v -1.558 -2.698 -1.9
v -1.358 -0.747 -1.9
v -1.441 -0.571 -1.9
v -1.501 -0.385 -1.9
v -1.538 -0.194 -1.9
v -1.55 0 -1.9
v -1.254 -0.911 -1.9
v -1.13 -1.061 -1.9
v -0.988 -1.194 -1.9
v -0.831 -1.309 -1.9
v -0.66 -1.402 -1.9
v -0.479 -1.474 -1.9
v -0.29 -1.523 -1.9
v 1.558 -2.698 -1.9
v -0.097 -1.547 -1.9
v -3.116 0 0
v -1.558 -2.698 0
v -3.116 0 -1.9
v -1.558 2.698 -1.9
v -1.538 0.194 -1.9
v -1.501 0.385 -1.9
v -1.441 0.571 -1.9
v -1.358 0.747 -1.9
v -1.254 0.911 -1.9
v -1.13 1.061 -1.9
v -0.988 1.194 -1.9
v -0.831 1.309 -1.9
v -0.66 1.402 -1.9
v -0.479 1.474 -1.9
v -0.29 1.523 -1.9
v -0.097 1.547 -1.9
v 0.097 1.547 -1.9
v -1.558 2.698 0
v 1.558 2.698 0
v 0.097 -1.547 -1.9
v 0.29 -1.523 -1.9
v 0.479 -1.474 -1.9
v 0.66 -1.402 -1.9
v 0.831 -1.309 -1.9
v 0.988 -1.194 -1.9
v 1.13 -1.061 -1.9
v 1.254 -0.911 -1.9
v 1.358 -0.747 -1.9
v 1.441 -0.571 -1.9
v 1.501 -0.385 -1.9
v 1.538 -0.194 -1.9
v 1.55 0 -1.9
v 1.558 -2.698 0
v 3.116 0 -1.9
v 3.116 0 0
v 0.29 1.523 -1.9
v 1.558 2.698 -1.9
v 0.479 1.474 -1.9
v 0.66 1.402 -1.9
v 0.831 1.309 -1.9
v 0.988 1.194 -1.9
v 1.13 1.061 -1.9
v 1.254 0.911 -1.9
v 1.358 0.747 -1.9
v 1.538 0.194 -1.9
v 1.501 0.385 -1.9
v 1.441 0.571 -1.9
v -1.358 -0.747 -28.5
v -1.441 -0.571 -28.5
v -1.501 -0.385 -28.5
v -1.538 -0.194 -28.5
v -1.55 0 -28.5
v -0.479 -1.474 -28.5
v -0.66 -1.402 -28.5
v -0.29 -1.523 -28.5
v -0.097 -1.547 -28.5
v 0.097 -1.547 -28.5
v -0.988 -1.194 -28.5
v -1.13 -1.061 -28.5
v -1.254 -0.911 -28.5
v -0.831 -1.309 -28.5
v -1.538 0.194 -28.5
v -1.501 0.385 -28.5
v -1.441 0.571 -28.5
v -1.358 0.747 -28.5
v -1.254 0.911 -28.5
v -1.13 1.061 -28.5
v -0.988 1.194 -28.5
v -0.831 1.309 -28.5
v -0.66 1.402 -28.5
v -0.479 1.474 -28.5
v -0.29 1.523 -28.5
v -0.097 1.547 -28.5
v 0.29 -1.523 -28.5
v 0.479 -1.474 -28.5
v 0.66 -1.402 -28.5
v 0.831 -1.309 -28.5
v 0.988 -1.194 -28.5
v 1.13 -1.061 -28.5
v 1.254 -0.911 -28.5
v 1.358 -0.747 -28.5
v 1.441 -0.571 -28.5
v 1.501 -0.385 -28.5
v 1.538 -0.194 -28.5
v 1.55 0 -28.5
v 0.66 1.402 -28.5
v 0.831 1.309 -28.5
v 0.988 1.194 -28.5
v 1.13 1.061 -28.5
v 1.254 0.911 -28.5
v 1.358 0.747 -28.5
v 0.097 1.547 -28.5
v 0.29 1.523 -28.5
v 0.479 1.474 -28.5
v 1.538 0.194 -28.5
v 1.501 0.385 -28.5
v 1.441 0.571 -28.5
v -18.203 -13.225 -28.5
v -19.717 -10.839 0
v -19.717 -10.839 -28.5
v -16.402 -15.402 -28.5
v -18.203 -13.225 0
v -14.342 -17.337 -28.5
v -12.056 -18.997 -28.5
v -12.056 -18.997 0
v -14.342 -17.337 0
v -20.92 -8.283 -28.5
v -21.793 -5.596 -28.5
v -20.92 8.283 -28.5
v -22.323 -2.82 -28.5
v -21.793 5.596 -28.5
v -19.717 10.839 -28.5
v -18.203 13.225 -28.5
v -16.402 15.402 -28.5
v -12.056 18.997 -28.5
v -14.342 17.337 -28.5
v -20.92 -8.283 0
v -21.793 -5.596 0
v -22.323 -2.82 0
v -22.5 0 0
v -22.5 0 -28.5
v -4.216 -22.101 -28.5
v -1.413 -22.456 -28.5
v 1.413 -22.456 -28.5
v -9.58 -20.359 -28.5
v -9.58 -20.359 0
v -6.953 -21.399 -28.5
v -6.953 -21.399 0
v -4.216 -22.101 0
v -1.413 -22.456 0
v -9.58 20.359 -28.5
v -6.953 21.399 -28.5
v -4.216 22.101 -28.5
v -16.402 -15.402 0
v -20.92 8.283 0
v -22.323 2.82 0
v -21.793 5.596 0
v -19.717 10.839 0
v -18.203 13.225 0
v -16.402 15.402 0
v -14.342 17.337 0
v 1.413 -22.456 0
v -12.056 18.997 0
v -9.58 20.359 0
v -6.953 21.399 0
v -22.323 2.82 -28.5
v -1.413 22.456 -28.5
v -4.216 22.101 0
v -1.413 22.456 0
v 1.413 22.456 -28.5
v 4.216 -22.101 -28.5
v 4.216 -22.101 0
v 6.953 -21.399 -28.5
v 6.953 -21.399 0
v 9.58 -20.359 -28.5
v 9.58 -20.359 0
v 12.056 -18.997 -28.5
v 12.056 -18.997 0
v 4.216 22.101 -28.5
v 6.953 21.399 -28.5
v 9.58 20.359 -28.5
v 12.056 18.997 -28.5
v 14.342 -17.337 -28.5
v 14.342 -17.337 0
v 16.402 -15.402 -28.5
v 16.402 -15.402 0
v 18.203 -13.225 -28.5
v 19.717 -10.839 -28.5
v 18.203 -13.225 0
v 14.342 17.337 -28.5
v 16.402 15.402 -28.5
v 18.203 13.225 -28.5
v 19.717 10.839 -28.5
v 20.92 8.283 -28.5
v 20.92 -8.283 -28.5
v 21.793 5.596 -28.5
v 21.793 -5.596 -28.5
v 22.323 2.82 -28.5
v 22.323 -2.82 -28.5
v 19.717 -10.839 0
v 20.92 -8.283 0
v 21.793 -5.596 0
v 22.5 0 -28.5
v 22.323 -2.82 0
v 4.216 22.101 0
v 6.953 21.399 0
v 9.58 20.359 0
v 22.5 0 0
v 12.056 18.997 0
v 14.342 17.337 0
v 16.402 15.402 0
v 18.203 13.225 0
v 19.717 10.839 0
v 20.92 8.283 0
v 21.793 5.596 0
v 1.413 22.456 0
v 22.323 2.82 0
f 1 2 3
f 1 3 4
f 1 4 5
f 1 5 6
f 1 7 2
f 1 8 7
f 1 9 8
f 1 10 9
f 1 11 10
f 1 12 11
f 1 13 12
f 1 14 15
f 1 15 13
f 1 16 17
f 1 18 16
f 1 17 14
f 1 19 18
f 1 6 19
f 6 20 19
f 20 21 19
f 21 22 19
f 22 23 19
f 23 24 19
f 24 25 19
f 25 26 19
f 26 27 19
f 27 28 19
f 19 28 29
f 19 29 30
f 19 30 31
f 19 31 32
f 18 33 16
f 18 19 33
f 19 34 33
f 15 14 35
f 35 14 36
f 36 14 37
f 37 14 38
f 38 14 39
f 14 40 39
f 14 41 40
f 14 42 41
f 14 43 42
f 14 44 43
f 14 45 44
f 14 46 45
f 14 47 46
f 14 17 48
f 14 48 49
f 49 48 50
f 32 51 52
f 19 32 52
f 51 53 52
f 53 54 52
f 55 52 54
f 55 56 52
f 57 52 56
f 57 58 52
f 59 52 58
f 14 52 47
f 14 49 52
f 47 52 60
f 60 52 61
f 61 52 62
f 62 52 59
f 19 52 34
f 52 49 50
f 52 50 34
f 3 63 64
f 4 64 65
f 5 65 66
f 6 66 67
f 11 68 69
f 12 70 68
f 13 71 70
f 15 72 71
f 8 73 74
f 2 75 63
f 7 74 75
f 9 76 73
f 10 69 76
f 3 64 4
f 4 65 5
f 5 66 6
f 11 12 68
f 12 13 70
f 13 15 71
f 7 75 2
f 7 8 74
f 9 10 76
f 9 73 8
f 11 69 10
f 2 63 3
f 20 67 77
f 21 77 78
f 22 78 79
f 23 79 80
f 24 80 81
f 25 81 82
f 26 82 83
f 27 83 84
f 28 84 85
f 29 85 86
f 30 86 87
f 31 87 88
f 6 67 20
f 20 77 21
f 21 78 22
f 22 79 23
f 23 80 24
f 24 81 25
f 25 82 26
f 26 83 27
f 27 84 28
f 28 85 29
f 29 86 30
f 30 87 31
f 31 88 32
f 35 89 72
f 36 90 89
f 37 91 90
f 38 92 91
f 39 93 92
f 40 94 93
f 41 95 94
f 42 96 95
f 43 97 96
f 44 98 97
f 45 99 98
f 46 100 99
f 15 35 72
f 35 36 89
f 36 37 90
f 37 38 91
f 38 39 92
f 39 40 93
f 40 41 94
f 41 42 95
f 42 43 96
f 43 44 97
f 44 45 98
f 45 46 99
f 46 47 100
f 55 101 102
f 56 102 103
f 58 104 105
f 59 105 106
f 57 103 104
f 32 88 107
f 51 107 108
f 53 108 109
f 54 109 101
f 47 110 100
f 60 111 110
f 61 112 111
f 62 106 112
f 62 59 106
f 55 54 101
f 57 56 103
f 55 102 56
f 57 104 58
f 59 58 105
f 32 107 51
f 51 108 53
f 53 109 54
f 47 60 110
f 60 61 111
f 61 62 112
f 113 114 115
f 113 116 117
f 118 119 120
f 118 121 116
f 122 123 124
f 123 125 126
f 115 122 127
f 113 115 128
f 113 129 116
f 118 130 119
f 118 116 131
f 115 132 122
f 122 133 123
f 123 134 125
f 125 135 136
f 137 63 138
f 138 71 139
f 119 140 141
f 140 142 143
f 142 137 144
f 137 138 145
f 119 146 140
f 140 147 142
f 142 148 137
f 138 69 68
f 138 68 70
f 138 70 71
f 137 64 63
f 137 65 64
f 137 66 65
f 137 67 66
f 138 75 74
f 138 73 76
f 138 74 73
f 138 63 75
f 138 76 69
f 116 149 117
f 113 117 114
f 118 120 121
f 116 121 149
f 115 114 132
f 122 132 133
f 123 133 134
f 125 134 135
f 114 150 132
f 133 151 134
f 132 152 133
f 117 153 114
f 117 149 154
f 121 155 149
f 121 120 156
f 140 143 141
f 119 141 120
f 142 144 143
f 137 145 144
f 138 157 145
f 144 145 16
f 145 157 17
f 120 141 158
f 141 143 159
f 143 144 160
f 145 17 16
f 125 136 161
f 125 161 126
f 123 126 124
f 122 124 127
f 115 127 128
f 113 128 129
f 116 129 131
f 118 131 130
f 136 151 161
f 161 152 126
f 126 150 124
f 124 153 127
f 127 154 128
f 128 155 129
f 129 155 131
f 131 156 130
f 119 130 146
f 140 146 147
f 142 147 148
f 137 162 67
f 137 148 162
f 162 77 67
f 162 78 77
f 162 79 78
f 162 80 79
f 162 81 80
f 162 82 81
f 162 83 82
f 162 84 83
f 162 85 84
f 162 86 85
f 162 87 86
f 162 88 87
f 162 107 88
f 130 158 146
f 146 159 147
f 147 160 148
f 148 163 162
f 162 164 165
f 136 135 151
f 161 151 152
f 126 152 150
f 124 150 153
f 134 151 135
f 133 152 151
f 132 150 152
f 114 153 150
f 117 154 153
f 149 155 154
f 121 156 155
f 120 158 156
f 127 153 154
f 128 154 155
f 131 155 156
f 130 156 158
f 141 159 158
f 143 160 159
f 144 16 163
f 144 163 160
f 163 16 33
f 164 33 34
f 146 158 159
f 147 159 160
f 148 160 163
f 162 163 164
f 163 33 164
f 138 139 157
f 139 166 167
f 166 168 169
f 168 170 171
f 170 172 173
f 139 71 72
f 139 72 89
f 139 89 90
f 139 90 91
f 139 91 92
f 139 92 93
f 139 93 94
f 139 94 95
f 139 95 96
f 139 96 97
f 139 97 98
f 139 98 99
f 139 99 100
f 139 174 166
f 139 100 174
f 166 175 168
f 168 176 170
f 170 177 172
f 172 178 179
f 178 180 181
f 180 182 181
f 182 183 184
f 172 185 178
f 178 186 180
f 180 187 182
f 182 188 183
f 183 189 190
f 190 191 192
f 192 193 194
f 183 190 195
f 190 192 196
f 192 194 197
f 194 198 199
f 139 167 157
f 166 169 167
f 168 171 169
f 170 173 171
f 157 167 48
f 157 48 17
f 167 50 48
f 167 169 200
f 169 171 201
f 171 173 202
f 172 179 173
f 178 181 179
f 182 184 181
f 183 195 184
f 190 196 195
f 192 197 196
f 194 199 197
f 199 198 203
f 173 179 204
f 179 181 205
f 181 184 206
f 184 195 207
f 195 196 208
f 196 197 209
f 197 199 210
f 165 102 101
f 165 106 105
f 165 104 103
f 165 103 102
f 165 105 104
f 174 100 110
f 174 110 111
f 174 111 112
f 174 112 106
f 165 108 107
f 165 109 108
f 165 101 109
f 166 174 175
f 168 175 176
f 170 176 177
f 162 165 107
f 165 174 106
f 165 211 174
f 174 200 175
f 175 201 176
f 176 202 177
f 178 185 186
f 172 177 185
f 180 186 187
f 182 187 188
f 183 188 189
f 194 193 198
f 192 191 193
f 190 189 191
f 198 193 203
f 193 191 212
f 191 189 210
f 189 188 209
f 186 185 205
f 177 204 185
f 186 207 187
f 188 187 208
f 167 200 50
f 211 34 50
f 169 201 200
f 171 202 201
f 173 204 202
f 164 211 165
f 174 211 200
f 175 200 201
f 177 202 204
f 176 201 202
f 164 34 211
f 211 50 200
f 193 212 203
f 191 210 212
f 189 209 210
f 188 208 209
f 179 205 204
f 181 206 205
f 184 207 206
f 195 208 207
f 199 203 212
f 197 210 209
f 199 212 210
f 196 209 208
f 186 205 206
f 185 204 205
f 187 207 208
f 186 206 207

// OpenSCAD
$fn = 50;

difference() {
	union() {
		translate(v = [0, 0, -28.5]) {
			cylinder(h = 28.5, r = 22.5);
		}
	}
	union() {
		translate(v = [0, 0, 0]) {
			rotate(a = [0, 0, 0]) {
				difference() {
					union() {
						translate(v = [0, 0, -1.9]) {
							linear_extrude(height = 1.9) {
								polygon(points = [[3.1158, 0.0], [1.5579000000000005, 2.698361953111554], [-1.5578999999999994, 2.6983619531115544], [-3.1158, 3.815754496783323e-16], [-1.5579000000000014, -2.6983619531115535], [1.557899999999998, -2.6983619531115552]]);
							}
						}
					}
					union();
				}
			}
		}
		#translate(v = [0, 0, -100.0]) {
			cylinder(h = 200, r = 1.55);
		}
	}
}
